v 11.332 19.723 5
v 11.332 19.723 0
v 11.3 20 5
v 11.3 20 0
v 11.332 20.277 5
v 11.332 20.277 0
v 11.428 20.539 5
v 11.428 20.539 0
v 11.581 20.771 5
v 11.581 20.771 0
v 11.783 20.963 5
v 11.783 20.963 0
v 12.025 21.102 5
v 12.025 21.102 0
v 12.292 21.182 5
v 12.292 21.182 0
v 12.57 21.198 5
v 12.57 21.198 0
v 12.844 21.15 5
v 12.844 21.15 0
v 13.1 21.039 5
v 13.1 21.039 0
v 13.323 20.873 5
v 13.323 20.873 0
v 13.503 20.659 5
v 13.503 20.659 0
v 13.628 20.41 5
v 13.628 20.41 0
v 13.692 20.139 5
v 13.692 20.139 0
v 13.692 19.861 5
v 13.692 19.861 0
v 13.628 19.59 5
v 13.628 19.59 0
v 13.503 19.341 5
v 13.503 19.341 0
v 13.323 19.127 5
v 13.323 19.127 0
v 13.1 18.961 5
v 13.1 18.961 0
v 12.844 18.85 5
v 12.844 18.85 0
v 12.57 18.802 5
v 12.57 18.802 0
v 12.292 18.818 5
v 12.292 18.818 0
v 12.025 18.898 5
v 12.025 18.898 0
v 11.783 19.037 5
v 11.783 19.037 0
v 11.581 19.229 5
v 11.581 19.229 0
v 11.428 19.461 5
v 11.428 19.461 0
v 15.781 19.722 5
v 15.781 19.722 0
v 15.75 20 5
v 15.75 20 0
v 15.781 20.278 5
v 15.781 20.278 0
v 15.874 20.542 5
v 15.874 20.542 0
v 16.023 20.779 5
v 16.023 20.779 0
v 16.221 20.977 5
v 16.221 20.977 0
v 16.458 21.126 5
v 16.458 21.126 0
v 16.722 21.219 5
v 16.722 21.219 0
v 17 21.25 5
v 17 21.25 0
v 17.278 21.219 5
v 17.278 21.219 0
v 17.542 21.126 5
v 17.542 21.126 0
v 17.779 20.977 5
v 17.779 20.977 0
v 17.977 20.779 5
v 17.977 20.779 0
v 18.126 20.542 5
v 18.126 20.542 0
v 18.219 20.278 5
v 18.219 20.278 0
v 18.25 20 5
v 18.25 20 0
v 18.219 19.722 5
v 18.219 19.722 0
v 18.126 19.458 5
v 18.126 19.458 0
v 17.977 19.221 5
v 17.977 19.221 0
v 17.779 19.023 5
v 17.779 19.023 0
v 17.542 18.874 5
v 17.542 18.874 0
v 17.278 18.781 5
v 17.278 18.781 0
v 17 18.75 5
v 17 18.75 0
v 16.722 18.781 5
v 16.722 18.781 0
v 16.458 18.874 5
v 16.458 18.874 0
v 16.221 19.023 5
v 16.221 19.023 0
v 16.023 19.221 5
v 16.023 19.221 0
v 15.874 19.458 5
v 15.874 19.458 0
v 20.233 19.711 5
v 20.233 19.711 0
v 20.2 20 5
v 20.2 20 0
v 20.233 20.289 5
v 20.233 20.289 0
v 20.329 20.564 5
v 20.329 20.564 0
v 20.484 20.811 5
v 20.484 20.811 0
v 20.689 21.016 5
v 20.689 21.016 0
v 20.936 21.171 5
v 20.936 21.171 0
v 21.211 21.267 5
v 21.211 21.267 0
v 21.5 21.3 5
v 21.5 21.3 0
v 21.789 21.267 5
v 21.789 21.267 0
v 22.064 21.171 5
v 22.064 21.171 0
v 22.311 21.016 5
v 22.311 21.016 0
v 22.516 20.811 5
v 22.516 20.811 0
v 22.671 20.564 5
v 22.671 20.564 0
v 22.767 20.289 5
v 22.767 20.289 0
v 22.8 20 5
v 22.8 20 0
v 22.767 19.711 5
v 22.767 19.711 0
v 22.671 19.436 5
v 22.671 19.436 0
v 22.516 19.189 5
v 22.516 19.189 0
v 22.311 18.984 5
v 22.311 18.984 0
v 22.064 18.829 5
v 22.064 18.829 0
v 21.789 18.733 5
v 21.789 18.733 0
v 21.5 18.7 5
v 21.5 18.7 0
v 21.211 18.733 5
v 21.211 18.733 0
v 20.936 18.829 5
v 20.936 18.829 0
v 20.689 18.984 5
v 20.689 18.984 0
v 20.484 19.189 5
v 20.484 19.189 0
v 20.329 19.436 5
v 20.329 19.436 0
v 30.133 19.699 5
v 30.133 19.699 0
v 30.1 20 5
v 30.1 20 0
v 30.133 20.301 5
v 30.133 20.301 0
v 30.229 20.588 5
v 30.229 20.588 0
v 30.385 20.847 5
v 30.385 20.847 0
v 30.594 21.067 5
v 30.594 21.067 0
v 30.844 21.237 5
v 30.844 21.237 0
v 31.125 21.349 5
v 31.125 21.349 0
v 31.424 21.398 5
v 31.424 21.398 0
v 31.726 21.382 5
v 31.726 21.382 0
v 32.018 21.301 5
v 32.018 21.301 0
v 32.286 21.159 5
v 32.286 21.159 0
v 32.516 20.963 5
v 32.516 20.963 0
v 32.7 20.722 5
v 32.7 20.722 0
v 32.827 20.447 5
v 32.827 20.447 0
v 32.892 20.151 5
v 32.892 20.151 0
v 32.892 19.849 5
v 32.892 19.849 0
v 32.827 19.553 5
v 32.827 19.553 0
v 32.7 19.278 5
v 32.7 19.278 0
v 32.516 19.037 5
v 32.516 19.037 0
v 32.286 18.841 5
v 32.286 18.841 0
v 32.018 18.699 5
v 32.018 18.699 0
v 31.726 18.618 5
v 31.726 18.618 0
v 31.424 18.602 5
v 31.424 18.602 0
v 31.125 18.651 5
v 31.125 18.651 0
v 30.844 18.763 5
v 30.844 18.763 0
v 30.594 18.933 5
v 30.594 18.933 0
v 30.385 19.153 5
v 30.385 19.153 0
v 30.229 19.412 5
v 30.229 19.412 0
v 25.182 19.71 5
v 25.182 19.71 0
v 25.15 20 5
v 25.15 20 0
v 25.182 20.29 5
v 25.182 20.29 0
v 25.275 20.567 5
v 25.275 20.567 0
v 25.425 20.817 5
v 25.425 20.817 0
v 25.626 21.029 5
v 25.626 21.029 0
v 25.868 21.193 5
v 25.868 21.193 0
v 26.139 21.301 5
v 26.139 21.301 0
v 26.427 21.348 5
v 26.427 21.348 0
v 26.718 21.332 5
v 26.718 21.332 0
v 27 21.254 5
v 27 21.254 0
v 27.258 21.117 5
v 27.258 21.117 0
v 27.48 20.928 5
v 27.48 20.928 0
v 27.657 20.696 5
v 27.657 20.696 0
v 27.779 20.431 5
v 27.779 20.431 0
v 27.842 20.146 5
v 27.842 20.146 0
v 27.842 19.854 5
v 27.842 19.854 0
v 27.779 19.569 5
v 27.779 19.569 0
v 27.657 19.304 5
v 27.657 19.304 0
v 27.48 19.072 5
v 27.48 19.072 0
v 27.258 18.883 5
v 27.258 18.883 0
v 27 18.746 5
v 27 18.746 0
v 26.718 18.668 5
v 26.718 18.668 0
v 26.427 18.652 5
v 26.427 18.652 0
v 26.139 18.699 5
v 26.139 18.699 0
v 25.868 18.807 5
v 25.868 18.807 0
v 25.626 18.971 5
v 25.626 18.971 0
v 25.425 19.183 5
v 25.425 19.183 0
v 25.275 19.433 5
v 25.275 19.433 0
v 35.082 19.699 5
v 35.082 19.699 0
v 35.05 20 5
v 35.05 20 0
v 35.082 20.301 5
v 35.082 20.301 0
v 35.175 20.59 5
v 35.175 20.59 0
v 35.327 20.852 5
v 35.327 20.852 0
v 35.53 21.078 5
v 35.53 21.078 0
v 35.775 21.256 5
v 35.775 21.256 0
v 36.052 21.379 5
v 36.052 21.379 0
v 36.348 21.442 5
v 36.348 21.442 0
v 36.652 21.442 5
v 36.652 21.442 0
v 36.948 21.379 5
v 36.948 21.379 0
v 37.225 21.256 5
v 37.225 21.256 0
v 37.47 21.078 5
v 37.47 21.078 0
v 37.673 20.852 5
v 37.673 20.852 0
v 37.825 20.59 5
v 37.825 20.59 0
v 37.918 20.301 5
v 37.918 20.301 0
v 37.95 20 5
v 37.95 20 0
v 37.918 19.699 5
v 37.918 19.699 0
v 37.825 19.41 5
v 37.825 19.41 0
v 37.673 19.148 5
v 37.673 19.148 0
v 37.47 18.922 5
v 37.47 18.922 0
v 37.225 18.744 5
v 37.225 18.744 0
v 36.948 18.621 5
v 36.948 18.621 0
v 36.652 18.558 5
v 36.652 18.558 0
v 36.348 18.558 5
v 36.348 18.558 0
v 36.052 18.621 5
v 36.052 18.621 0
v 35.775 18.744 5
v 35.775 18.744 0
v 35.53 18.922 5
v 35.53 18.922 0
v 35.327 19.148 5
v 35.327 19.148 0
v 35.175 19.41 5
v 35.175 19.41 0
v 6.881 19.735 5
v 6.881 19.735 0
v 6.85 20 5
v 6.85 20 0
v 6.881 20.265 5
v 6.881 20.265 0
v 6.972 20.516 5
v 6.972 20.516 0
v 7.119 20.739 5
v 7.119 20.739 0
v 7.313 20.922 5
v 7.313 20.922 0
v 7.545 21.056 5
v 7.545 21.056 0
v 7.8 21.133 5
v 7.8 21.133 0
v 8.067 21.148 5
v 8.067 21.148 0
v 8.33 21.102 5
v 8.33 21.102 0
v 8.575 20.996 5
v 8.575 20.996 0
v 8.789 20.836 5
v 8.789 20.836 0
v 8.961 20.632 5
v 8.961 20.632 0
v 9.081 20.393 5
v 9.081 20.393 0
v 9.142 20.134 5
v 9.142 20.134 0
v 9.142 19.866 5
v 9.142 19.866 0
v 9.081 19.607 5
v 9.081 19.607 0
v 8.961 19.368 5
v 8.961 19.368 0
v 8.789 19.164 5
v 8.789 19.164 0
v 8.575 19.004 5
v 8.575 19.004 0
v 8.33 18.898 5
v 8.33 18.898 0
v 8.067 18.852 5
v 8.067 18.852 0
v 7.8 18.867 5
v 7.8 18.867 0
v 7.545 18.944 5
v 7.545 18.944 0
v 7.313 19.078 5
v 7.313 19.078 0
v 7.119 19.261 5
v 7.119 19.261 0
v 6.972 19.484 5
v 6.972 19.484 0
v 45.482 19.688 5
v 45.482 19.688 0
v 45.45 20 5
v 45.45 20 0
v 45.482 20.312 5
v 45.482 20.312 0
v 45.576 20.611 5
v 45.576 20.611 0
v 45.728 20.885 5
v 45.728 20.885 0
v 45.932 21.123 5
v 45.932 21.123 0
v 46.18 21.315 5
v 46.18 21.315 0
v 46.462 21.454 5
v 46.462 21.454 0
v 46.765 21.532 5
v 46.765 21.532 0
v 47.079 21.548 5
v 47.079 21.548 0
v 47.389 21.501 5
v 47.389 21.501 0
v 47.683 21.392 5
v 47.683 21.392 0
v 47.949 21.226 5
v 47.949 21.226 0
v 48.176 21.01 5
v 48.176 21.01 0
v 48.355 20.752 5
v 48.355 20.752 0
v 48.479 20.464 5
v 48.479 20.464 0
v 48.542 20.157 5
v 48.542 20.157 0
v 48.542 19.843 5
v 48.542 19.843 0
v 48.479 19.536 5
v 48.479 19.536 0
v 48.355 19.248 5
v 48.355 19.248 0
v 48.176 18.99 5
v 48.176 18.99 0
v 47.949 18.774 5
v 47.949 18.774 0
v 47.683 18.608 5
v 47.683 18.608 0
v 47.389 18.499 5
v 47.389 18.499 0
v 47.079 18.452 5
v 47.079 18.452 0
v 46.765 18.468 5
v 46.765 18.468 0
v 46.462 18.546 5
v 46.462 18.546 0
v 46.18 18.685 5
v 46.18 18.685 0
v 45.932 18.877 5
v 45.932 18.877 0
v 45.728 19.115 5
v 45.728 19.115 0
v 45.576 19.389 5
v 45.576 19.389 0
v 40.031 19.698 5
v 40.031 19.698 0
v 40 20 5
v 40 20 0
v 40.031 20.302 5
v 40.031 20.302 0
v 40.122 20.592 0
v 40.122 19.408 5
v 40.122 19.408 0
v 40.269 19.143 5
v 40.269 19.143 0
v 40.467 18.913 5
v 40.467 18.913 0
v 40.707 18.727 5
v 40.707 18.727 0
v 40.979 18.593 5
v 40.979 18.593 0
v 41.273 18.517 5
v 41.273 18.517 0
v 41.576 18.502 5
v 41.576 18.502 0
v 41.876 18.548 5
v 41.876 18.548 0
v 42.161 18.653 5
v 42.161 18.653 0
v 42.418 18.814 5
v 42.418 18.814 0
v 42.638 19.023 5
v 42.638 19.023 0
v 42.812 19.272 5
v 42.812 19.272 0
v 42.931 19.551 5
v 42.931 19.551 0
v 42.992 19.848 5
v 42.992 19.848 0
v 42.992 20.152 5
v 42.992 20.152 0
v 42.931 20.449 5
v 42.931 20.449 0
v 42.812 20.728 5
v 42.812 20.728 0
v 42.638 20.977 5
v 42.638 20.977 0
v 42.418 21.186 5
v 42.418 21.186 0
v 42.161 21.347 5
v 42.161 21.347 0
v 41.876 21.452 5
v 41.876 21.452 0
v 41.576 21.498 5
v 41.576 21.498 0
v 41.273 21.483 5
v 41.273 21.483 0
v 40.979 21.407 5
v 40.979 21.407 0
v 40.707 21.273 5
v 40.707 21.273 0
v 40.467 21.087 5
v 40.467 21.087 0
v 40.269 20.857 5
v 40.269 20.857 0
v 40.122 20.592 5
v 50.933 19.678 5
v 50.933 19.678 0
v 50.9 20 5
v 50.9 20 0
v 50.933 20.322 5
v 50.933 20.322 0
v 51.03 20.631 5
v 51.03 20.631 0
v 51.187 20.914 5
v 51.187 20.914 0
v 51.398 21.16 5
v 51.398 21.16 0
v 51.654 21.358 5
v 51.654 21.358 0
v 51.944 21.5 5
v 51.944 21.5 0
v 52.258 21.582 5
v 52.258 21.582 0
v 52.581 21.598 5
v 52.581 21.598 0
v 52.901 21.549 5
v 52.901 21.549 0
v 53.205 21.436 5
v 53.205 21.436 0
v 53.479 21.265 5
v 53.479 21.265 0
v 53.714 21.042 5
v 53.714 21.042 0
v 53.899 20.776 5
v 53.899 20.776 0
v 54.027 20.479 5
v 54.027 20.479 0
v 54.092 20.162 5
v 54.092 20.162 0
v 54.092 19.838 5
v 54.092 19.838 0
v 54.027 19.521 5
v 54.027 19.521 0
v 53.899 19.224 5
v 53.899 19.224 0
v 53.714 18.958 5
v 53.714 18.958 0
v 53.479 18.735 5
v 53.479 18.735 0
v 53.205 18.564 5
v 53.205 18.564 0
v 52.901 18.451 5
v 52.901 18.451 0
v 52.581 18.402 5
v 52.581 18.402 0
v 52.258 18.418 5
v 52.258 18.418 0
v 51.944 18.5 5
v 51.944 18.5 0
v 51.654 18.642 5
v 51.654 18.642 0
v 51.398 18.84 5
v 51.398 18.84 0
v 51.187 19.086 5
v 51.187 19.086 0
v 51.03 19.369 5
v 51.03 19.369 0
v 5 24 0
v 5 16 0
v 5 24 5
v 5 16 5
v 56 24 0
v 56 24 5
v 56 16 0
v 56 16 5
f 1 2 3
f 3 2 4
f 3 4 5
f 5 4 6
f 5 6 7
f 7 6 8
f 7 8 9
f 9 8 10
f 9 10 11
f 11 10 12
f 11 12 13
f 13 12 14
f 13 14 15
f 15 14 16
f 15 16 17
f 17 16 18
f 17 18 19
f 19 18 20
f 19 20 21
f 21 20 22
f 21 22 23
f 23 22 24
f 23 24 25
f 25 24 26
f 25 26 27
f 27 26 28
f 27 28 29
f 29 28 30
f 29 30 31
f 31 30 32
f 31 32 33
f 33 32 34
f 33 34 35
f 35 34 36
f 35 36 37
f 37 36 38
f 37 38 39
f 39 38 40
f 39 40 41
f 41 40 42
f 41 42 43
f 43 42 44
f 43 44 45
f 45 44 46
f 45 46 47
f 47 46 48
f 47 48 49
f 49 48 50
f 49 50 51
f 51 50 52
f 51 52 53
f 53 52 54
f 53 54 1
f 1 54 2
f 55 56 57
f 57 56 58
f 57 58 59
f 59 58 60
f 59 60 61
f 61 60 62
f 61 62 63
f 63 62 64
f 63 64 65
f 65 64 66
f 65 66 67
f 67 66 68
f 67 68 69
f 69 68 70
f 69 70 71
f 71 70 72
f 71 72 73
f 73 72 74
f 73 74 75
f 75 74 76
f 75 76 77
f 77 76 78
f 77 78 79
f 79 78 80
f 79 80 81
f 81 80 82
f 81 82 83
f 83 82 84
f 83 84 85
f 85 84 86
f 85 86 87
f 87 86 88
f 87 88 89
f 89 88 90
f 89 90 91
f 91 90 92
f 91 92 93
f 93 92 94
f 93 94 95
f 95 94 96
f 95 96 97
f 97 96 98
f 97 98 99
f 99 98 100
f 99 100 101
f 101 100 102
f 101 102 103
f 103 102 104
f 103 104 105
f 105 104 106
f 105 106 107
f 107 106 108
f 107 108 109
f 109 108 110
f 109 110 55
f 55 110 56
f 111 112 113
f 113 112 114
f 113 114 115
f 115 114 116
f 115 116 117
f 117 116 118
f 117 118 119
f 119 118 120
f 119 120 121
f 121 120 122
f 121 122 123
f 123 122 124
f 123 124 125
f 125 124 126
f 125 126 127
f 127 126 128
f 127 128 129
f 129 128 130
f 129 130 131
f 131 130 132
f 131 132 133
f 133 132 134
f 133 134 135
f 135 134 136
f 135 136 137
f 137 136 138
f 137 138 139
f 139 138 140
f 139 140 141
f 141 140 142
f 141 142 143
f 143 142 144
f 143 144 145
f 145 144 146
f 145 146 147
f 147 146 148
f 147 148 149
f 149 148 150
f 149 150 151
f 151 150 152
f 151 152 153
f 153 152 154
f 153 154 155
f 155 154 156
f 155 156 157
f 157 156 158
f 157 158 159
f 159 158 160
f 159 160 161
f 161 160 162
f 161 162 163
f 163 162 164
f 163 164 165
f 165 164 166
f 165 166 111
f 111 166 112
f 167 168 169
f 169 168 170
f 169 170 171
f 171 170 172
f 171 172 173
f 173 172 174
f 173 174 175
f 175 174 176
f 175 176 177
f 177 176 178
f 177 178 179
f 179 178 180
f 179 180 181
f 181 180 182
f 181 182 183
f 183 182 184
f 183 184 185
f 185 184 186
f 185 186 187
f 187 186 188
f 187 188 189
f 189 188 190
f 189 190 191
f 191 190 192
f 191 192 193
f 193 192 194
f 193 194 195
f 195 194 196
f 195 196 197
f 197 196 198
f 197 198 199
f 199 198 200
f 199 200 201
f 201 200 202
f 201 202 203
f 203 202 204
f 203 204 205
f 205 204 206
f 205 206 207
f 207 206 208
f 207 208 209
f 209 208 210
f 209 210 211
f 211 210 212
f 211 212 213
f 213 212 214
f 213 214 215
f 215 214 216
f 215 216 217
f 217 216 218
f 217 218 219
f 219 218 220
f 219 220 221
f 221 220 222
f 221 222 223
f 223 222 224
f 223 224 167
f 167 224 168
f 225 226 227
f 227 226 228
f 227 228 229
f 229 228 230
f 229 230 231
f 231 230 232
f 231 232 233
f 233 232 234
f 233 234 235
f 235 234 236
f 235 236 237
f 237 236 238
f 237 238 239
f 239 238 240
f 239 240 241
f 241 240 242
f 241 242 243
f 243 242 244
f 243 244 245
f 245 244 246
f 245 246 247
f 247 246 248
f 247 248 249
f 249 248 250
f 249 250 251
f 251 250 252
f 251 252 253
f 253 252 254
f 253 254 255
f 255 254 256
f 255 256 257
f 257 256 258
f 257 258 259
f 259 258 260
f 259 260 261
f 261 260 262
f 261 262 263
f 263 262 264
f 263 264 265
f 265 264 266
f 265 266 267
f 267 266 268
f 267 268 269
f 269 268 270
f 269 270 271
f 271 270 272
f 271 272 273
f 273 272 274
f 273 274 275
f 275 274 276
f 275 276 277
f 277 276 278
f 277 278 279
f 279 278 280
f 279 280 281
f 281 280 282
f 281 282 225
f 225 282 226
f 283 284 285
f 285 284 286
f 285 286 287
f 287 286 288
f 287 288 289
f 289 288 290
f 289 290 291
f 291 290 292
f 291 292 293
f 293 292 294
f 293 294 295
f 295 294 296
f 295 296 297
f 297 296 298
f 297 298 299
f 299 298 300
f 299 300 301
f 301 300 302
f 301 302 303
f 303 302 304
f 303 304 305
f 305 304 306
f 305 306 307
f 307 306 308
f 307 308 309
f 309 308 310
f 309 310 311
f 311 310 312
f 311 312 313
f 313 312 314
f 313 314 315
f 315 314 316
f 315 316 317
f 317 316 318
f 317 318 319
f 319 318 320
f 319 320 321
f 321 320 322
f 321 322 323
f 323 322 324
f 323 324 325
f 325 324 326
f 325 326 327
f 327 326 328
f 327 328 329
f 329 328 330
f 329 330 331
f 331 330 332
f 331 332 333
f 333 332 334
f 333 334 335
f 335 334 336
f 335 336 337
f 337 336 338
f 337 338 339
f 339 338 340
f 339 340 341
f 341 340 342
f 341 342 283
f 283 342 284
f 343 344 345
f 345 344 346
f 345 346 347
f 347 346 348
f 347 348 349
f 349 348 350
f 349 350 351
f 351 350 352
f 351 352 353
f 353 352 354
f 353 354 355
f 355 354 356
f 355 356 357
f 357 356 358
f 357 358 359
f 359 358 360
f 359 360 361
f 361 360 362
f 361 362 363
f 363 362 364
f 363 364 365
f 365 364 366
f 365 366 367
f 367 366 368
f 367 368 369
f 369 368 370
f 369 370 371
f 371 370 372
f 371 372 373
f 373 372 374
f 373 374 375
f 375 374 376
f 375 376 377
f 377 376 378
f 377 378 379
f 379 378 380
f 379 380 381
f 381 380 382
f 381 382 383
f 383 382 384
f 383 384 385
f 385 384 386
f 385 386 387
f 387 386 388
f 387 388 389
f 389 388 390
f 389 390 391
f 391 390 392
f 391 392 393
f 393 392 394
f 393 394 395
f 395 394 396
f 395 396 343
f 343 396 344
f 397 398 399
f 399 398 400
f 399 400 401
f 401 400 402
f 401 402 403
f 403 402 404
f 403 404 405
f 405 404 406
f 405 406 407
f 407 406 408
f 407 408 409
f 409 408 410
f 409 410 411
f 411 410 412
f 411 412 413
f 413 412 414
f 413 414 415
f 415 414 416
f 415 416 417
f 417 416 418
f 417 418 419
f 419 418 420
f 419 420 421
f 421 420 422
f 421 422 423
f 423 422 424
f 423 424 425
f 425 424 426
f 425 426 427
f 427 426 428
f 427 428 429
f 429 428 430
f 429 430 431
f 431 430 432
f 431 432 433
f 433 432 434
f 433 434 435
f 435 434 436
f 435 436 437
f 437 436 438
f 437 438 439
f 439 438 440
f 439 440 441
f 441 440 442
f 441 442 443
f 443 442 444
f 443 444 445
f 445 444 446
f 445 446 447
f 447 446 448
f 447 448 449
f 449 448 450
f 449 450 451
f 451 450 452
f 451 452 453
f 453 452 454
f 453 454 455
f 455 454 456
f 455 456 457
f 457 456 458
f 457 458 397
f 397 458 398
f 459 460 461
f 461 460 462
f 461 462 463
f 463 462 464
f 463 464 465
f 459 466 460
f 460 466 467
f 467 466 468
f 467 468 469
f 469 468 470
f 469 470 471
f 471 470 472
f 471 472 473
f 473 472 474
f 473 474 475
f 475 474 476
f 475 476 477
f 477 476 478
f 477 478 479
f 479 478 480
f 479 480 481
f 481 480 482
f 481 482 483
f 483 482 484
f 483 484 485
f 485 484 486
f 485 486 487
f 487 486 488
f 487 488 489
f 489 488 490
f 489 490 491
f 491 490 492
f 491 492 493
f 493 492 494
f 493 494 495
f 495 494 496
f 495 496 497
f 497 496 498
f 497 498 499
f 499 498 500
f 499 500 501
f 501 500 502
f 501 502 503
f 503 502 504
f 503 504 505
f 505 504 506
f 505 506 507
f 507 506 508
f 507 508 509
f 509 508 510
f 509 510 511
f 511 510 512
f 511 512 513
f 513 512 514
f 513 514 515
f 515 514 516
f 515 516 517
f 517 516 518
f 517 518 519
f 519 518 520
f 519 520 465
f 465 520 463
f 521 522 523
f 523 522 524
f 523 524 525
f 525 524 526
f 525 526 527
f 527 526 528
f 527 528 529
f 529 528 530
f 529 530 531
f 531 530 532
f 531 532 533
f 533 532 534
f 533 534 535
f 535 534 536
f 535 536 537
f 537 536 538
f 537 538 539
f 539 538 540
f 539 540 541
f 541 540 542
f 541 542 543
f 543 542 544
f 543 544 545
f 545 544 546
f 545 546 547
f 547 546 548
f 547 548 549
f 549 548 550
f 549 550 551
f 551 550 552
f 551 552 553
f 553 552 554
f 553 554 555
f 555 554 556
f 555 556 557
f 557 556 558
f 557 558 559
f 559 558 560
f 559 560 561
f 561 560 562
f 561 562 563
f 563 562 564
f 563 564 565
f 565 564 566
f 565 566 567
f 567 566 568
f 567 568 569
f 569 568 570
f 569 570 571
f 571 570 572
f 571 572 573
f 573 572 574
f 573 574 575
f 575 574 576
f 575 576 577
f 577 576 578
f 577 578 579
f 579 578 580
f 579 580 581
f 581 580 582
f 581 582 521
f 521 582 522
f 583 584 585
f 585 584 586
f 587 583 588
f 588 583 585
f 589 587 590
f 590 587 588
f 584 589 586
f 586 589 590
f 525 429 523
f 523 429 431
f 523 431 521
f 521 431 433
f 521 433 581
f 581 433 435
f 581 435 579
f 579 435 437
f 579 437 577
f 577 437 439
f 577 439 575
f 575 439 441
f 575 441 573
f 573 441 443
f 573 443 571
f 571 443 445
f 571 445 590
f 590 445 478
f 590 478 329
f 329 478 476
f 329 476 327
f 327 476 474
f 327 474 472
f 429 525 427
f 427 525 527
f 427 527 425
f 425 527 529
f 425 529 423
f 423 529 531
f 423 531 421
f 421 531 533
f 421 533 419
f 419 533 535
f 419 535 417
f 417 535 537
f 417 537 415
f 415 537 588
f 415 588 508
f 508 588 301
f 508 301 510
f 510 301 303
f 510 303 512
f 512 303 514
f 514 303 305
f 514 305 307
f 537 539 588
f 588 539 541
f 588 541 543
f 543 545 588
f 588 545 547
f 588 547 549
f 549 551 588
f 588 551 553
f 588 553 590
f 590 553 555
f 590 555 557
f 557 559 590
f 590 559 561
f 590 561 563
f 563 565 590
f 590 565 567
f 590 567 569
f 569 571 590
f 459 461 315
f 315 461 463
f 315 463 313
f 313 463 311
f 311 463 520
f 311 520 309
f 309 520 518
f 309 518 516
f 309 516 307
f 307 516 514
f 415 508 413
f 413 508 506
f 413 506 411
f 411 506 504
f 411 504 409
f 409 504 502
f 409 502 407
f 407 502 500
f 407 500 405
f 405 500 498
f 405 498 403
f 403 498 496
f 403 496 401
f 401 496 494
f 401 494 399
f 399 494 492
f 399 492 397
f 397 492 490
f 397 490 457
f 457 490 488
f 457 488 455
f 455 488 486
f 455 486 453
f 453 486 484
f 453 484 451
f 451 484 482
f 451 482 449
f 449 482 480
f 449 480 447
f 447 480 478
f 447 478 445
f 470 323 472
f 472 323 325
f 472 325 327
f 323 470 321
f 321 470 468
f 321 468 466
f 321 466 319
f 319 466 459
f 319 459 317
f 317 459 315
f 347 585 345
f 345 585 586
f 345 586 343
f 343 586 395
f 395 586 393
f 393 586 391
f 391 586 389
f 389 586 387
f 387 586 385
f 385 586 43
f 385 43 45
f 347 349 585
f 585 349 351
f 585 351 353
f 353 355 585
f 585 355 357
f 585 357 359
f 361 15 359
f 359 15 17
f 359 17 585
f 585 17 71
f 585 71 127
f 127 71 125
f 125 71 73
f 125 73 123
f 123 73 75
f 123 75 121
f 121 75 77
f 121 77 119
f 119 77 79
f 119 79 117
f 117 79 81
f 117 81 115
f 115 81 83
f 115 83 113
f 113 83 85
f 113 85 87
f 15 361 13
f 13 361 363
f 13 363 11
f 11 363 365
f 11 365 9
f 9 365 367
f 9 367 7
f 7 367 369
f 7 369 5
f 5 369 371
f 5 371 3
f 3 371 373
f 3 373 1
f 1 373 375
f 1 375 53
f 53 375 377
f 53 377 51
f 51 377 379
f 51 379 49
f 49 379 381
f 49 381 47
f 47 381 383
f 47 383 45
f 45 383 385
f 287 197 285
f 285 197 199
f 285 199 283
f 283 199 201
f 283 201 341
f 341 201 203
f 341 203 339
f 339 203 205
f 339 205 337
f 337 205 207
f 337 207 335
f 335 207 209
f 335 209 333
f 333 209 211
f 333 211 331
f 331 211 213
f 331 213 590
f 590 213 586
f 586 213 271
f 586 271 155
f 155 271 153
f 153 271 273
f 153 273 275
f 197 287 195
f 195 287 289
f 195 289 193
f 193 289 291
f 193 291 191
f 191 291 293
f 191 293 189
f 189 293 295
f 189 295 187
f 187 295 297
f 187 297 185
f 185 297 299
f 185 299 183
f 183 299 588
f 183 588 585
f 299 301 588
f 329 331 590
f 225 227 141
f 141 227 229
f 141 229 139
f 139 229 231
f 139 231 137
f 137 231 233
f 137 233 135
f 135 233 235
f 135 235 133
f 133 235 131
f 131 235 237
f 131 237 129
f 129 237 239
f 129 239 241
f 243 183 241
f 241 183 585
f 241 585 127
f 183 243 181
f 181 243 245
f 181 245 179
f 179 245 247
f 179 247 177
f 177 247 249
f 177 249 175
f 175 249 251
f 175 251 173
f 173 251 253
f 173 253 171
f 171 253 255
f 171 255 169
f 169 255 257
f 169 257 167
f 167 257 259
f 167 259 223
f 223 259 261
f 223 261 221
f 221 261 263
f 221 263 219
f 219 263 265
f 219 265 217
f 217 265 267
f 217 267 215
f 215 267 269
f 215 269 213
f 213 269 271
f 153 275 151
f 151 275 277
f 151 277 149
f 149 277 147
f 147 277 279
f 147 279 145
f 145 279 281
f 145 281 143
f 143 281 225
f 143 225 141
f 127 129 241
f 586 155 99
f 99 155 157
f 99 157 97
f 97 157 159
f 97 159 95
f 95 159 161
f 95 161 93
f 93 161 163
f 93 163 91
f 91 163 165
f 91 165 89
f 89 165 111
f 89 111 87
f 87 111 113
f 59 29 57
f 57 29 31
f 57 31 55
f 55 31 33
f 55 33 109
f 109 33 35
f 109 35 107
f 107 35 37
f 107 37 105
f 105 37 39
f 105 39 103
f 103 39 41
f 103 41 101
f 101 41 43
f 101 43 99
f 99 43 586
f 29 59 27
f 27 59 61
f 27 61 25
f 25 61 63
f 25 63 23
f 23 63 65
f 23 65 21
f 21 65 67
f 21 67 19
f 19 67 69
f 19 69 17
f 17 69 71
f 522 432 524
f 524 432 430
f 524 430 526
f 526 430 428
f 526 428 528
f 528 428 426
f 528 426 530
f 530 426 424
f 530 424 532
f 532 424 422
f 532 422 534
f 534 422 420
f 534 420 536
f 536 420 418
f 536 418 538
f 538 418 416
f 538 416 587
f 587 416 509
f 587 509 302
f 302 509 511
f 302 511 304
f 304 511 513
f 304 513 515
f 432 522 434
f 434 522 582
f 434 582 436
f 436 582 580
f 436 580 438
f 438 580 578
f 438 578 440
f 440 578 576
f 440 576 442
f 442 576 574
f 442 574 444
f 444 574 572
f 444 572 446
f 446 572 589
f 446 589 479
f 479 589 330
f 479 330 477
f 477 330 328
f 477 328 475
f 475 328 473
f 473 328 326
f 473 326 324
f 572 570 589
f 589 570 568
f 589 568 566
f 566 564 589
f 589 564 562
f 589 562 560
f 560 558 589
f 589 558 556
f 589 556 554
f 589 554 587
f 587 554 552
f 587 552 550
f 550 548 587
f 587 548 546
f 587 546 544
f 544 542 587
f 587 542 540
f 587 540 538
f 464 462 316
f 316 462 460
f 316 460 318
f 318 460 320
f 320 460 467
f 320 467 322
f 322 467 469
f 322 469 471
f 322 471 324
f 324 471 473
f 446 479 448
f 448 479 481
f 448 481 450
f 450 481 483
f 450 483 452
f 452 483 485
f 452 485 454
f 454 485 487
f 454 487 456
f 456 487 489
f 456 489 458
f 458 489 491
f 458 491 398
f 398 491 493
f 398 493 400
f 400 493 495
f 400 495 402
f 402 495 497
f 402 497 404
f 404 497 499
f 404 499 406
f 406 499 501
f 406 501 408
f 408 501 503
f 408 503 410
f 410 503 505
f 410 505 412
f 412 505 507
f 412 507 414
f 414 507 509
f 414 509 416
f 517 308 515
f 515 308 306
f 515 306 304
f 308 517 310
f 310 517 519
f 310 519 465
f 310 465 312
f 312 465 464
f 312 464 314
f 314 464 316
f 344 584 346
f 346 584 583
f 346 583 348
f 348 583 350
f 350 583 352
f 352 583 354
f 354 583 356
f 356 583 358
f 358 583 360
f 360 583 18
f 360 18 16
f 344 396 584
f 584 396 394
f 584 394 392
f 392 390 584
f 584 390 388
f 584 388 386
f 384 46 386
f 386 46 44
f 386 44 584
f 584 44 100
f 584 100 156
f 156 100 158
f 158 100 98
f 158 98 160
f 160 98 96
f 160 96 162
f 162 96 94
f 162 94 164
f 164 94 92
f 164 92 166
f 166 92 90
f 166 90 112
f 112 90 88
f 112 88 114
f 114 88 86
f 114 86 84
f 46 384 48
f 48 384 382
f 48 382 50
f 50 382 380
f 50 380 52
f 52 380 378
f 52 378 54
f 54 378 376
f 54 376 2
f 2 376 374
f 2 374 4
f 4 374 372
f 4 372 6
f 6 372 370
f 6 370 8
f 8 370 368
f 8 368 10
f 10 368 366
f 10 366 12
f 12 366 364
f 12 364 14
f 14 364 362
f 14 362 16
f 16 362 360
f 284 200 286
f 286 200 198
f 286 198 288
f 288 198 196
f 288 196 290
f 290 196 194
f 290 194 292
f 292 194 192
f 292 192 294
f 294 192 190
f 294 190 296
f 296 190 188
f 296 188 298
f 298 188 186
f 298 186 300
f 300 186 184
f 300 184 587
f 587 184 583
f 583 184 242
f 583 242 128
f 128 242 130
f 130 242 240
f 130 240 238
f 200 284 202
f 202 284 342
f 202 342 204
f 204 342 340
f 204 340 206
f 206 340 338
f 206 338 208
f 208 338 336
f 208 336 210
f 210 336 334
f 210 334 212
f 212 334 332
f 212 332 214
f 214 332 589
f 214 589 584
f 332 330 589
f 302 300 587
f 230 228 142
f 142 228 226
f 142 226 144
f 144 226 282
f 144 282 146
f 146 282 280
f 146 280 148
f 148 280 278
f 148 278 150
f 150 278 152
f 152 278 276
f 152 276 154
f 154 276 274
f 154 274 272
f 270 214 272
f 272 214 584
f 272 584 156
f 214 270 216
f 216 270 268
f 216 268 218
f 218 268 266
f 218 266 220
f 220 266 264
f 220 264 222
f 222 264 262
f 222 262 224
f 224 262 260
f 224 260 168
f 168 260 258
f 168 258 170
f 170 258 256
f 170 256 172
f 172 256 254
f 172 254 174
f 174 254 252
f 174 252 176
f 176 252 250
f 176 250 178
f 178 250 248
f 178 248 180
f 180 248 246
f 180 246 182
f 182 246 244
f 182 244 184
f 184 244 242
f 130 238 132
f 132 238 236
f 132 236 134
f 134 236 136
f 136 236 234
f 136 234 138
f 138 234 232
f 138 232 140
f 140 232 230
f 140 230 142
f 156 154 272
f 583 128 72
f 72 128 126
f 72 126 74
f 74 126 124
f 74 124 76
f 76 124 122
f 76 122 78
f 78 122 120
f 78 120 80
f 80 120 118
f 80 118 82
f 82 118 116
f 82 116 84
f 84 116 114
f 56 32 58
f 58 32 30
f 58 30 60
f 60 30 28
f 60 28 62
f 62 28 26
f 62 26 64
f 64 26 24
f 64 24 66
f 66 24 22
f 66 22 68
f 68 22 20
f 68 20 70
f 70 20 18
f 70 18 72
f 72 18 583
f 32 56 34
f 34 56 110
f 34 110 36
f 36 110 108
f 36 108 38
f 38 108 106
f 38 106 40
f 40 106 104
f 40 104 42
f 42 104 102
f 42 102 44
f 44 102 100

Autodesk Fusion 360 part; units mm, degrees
sketch "Sketch1" plane through (0, 0, 0) normal (0, 0, 1) x (1, 0, 0)
  line L0 (5, 24) -> (56, 24)
  line L1 (56, 24) -> (56, 16)
  line L2 (56, 16) -> (5, 16)
  line L3 (5, 16) -> (5, 24)
  circle A0 centre (8, 20) radius 1.15
  circle A1 centre (12.5, 20) radius 1.2
  circle A2 centre (17, 20) radius 1.25
  circle A3 centre (21.5, 20) radius 1.3
  circle A4 centre (26.5, 20) radius 1.35
  circle A5 centre (31.5, 20) radius 1.4
  circle A6 centre (36.5, 20) radius 1.45
  circle A7 centre (41.5, 20) radius 1.5
  circle A8 centre (47, 20) radius 1.55
  circle A9 centre (52.5, 20) radius 1.6
  dimension "d1" = 51
  dimension "d2" = 8
  dimension "d6" = 2.3
  dimension "d7" = 2.4
  dimension "d8" = 2.5
  dimension "d9" = 2.6
  dimension "d10" = 2.7
  dimension "d11" = 2.8
  dimension "d12" = 2.9
  dimension "d13" = 3
  dimension "d14" = 3.1
  dimension "d15" = 3.2
extrude "Extrude2" add sketch "Sketch1" along normal blind 5
